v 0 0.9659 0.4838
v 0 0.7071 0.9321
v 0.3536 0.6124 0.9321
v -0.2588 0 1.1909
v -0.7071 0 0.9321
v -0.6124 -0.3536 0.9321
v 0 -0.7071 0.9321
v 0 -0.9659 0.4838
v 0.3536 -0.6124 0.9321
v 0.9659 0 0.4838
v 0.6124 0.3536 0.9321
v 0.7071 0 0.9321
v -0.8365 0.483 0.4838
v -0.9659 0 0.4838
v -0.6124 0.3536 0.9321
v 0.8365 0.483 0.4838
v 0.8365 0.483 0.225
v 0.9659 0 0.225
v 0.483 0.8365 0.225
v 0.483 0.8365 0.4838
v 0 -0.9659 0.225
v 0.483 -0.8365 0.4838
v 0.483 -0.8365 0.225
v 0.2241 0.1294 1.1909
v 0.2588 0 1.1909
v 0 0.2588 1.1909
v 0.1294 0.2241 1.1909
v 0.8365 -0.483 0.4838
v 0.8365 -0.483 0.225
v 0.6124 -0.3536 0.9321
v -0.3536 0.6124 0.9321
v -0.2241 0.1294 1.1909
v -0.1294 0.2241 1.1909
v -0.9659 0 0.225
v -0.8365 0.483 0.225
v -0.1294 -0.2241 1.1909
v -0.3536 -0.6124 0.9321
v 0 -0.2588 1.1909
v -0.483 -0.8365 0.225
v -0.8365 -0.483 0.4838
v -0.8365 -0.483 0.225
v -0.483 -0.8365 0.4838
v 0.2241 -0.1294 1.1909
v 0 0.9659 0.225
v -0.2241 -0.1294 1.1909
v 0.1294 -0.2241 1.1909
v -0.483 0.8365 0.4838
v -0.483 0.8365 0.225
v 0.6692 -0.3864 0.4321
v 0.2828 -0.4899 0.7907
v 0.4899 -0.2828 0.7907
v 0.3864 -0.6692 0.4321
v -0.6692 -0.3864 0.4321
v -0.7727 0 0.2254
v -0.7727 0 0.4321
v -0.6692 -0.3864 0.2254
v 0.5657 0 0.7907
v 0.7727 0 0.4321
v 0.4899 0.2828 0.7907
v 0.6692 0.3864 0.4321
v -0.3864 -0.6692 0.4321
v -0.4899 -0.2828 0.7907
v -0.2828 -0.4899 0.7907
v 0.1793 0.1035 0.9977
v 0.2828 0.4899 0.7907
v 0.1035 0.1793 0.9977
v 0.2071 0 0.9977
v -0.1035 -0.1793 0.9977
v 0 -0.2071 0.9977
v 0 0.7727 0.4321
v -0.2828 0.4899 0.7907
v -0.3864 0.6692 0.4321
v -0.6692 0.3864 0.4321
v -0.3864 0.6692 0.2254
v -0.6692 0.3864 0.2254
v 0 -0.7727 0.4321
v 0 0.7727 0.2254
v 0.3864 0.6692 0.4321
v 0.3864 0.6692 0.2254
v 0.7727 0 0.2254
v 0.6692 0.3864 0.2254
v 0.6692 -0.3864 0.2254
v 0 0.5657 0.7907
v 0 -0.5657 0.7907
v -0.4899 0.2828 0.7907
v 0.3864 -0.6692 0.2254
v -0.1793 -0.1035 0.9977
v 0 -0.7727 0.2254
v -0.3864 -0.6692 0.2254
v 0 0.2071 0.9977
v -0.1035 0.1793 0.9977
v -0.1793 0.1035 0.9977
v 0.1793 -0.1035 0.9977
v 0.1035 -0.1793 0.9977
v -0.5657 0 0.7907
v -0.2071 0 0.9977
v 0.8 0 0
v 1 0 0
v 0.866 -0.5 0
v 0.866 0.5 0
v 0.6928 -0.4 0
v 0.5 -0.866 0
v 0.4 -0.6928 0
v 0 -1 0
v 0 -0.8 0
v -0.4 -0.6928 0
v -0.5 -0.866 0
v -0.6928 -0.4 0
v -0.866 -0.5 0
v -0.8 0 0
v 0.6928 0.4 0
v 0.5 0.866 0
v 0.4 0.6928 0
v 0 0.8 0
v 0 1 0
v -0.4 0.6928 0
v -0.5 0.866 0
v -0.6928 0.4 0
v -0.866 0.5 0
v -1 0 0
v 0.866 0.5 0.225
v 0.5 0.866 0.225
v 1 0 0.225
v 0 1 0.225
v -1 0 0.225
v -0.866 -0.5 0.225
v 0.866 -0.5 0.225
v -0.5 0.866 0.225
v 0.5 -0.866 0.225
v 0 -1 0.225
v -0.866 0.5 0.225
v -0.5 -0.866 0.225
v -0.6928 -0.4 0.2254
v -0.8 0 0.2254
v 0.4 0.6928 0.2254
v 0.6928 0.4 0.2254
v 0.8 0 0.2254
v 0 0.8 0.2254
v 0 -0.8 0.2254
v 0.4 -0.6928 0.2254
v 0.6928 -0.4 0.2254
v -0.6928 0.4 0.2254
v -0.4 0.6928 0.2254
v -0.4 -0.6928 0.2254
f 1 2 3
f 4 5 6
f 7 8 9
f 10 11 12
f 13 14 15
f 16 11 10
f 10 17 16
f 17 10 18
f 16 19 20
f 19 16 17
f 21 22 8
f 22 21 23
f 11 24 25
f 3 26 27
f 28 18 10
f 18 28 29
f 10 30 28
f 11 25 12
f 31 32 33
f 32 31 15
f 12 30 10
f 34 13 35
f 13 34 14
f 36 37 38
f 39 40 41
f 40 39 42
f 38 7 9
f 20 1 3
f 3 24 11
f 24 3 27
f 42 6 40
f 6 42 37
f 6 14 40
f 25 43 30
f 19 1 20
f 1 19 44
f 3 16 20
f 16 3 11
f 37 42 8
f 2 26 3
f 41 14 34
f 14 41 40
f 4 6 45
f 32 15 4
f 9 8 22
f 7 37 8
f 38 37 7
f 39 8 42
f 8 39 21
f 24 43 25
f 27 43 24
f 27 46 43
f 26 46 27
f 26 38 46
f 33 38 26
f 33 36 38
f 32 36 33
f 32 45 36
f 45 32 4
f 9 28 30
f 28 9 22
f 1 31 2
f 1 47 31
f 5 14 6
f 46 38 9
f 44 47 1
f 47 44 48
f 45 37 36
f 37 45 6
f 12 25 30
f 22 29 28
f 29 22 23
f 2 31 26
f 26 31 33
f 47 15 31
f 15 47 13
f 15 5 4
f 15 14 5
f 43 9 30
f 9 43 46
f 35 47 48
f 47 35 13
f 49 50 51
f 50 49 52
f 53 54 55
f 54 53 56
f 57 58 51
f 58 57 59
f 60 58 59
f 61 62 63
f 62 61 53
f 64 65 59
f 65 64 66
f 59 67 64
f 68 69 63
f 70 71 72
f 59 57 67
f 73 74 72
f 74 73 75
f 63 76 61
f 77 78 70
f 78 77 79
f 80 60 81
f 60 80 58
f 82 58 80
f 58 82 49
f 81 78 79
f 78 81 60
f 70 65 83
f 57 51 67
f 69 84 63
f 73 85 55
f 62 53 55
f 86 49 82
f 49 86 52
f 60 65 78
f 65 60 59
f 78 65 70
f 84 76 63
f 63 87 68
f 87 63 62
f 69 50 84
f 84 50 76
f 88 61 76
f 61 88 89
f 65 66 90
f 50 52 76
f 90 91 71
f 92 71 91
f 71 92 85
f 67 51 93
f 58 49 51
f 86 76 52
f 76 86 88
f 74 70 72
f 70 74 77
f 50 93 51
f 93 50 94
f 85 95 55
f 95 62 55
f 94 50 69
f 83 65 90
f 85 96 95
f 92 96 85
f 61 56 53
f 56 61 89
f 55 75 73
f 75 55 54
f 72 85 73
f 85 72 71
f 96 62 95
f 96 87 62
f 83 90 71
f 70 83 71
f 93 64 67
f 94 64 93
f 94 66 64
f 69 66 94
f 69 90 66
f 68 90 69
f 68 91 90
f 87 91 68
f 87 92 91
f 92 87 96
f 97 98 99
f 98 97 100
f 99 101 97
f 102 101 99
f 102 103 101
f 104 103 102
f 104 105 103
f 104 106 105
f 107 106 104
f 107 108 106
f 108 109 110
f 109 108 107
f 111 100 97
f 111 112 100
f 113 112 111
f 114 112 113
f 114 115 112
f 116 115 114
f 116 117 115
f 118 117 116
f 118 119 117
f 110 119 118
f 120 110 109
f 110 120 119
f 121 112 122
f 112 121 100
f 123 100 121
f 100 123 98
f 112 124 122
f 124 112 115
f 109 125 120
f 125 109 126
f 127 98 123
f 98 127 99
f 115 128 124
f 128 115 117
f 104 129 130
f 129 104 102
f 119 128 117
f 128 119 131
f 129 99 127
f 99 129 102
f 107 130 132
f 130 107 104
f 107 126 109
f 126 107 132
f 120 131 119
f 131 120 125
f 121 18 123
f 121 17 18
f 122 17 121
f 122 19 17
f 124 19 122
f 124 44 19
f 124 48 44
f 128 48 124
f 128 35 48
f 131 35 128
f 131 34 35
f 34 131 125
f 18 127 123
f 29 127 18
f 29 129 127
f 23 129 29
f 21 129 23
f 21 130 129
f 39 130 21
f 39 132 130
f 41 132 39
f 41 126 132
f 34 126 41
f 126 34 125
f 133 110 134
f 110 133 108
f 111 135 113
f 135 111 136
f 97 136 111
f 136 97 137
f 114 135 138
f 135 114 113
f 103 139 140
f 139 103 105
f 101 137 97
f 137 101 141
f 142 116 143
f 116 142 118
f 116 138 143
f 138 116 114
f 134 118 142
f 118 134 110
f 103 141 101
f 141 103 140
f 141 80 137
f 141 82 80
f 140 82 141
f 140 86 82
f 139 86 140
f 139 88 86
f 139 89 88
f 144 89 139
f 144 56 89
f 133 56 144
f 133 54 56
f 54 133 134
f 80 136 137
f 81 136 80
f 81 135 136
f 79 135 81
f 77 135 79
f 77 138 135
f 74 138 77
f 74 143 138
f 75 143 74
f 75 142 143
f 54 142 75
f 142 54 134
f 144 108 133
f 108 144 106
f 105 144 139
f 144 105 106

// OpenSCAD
eps=0.00075;
hole_attach_height=0.075;
hole_radius=0.075;
outer_radius=1;
thickness=0.2;
hole_twist=0.0;
//other params
inner_radius = outer_radius - thickness;
fn = 12;
fnh = 6;

difference() {
    union() {
        difference() {
            //sphere
            translate([0,0,hole_radius*2 + hole_attach_height])
            sphere(r=outer_radius, $fn = fn);
            
            //shelling
            translate([0,0,hole_radius*2 + hole_attach_height])
            sphere(r=inner_radius, $fn = fn);
            
            translate([0,0,-outer_radius])
            cylinder(h=outer_radius, r= outer_radius, $fn = fn);
        }
        
        //attach segment
        cylinder(h=hole_radius*2 + hole_attach_height, r = outer_radius, $fn = fn);
    }
    
    translate([0,0,-outer_radius -eps/2])
    cylinder(h=hole_radius*2 + hole_attach_height + outer_radius + eps, r = inner_radius, $fn = fn);
    
//    translate([0,0,hole_attach_height + hole_radius]) 
//    rotate([0,0,hole_twist]){
//        rotate([90,0,0])
//        cylinder(h=outer_radius * 2 + eps, r = hole_radius, center=true, $fn = fnh);
//        rotate([0,90,0])
//        cylinder(h=outer_radius * 2 + eps, r = hole_radius, center=true, $fn = fnh);
//    }
    
}
